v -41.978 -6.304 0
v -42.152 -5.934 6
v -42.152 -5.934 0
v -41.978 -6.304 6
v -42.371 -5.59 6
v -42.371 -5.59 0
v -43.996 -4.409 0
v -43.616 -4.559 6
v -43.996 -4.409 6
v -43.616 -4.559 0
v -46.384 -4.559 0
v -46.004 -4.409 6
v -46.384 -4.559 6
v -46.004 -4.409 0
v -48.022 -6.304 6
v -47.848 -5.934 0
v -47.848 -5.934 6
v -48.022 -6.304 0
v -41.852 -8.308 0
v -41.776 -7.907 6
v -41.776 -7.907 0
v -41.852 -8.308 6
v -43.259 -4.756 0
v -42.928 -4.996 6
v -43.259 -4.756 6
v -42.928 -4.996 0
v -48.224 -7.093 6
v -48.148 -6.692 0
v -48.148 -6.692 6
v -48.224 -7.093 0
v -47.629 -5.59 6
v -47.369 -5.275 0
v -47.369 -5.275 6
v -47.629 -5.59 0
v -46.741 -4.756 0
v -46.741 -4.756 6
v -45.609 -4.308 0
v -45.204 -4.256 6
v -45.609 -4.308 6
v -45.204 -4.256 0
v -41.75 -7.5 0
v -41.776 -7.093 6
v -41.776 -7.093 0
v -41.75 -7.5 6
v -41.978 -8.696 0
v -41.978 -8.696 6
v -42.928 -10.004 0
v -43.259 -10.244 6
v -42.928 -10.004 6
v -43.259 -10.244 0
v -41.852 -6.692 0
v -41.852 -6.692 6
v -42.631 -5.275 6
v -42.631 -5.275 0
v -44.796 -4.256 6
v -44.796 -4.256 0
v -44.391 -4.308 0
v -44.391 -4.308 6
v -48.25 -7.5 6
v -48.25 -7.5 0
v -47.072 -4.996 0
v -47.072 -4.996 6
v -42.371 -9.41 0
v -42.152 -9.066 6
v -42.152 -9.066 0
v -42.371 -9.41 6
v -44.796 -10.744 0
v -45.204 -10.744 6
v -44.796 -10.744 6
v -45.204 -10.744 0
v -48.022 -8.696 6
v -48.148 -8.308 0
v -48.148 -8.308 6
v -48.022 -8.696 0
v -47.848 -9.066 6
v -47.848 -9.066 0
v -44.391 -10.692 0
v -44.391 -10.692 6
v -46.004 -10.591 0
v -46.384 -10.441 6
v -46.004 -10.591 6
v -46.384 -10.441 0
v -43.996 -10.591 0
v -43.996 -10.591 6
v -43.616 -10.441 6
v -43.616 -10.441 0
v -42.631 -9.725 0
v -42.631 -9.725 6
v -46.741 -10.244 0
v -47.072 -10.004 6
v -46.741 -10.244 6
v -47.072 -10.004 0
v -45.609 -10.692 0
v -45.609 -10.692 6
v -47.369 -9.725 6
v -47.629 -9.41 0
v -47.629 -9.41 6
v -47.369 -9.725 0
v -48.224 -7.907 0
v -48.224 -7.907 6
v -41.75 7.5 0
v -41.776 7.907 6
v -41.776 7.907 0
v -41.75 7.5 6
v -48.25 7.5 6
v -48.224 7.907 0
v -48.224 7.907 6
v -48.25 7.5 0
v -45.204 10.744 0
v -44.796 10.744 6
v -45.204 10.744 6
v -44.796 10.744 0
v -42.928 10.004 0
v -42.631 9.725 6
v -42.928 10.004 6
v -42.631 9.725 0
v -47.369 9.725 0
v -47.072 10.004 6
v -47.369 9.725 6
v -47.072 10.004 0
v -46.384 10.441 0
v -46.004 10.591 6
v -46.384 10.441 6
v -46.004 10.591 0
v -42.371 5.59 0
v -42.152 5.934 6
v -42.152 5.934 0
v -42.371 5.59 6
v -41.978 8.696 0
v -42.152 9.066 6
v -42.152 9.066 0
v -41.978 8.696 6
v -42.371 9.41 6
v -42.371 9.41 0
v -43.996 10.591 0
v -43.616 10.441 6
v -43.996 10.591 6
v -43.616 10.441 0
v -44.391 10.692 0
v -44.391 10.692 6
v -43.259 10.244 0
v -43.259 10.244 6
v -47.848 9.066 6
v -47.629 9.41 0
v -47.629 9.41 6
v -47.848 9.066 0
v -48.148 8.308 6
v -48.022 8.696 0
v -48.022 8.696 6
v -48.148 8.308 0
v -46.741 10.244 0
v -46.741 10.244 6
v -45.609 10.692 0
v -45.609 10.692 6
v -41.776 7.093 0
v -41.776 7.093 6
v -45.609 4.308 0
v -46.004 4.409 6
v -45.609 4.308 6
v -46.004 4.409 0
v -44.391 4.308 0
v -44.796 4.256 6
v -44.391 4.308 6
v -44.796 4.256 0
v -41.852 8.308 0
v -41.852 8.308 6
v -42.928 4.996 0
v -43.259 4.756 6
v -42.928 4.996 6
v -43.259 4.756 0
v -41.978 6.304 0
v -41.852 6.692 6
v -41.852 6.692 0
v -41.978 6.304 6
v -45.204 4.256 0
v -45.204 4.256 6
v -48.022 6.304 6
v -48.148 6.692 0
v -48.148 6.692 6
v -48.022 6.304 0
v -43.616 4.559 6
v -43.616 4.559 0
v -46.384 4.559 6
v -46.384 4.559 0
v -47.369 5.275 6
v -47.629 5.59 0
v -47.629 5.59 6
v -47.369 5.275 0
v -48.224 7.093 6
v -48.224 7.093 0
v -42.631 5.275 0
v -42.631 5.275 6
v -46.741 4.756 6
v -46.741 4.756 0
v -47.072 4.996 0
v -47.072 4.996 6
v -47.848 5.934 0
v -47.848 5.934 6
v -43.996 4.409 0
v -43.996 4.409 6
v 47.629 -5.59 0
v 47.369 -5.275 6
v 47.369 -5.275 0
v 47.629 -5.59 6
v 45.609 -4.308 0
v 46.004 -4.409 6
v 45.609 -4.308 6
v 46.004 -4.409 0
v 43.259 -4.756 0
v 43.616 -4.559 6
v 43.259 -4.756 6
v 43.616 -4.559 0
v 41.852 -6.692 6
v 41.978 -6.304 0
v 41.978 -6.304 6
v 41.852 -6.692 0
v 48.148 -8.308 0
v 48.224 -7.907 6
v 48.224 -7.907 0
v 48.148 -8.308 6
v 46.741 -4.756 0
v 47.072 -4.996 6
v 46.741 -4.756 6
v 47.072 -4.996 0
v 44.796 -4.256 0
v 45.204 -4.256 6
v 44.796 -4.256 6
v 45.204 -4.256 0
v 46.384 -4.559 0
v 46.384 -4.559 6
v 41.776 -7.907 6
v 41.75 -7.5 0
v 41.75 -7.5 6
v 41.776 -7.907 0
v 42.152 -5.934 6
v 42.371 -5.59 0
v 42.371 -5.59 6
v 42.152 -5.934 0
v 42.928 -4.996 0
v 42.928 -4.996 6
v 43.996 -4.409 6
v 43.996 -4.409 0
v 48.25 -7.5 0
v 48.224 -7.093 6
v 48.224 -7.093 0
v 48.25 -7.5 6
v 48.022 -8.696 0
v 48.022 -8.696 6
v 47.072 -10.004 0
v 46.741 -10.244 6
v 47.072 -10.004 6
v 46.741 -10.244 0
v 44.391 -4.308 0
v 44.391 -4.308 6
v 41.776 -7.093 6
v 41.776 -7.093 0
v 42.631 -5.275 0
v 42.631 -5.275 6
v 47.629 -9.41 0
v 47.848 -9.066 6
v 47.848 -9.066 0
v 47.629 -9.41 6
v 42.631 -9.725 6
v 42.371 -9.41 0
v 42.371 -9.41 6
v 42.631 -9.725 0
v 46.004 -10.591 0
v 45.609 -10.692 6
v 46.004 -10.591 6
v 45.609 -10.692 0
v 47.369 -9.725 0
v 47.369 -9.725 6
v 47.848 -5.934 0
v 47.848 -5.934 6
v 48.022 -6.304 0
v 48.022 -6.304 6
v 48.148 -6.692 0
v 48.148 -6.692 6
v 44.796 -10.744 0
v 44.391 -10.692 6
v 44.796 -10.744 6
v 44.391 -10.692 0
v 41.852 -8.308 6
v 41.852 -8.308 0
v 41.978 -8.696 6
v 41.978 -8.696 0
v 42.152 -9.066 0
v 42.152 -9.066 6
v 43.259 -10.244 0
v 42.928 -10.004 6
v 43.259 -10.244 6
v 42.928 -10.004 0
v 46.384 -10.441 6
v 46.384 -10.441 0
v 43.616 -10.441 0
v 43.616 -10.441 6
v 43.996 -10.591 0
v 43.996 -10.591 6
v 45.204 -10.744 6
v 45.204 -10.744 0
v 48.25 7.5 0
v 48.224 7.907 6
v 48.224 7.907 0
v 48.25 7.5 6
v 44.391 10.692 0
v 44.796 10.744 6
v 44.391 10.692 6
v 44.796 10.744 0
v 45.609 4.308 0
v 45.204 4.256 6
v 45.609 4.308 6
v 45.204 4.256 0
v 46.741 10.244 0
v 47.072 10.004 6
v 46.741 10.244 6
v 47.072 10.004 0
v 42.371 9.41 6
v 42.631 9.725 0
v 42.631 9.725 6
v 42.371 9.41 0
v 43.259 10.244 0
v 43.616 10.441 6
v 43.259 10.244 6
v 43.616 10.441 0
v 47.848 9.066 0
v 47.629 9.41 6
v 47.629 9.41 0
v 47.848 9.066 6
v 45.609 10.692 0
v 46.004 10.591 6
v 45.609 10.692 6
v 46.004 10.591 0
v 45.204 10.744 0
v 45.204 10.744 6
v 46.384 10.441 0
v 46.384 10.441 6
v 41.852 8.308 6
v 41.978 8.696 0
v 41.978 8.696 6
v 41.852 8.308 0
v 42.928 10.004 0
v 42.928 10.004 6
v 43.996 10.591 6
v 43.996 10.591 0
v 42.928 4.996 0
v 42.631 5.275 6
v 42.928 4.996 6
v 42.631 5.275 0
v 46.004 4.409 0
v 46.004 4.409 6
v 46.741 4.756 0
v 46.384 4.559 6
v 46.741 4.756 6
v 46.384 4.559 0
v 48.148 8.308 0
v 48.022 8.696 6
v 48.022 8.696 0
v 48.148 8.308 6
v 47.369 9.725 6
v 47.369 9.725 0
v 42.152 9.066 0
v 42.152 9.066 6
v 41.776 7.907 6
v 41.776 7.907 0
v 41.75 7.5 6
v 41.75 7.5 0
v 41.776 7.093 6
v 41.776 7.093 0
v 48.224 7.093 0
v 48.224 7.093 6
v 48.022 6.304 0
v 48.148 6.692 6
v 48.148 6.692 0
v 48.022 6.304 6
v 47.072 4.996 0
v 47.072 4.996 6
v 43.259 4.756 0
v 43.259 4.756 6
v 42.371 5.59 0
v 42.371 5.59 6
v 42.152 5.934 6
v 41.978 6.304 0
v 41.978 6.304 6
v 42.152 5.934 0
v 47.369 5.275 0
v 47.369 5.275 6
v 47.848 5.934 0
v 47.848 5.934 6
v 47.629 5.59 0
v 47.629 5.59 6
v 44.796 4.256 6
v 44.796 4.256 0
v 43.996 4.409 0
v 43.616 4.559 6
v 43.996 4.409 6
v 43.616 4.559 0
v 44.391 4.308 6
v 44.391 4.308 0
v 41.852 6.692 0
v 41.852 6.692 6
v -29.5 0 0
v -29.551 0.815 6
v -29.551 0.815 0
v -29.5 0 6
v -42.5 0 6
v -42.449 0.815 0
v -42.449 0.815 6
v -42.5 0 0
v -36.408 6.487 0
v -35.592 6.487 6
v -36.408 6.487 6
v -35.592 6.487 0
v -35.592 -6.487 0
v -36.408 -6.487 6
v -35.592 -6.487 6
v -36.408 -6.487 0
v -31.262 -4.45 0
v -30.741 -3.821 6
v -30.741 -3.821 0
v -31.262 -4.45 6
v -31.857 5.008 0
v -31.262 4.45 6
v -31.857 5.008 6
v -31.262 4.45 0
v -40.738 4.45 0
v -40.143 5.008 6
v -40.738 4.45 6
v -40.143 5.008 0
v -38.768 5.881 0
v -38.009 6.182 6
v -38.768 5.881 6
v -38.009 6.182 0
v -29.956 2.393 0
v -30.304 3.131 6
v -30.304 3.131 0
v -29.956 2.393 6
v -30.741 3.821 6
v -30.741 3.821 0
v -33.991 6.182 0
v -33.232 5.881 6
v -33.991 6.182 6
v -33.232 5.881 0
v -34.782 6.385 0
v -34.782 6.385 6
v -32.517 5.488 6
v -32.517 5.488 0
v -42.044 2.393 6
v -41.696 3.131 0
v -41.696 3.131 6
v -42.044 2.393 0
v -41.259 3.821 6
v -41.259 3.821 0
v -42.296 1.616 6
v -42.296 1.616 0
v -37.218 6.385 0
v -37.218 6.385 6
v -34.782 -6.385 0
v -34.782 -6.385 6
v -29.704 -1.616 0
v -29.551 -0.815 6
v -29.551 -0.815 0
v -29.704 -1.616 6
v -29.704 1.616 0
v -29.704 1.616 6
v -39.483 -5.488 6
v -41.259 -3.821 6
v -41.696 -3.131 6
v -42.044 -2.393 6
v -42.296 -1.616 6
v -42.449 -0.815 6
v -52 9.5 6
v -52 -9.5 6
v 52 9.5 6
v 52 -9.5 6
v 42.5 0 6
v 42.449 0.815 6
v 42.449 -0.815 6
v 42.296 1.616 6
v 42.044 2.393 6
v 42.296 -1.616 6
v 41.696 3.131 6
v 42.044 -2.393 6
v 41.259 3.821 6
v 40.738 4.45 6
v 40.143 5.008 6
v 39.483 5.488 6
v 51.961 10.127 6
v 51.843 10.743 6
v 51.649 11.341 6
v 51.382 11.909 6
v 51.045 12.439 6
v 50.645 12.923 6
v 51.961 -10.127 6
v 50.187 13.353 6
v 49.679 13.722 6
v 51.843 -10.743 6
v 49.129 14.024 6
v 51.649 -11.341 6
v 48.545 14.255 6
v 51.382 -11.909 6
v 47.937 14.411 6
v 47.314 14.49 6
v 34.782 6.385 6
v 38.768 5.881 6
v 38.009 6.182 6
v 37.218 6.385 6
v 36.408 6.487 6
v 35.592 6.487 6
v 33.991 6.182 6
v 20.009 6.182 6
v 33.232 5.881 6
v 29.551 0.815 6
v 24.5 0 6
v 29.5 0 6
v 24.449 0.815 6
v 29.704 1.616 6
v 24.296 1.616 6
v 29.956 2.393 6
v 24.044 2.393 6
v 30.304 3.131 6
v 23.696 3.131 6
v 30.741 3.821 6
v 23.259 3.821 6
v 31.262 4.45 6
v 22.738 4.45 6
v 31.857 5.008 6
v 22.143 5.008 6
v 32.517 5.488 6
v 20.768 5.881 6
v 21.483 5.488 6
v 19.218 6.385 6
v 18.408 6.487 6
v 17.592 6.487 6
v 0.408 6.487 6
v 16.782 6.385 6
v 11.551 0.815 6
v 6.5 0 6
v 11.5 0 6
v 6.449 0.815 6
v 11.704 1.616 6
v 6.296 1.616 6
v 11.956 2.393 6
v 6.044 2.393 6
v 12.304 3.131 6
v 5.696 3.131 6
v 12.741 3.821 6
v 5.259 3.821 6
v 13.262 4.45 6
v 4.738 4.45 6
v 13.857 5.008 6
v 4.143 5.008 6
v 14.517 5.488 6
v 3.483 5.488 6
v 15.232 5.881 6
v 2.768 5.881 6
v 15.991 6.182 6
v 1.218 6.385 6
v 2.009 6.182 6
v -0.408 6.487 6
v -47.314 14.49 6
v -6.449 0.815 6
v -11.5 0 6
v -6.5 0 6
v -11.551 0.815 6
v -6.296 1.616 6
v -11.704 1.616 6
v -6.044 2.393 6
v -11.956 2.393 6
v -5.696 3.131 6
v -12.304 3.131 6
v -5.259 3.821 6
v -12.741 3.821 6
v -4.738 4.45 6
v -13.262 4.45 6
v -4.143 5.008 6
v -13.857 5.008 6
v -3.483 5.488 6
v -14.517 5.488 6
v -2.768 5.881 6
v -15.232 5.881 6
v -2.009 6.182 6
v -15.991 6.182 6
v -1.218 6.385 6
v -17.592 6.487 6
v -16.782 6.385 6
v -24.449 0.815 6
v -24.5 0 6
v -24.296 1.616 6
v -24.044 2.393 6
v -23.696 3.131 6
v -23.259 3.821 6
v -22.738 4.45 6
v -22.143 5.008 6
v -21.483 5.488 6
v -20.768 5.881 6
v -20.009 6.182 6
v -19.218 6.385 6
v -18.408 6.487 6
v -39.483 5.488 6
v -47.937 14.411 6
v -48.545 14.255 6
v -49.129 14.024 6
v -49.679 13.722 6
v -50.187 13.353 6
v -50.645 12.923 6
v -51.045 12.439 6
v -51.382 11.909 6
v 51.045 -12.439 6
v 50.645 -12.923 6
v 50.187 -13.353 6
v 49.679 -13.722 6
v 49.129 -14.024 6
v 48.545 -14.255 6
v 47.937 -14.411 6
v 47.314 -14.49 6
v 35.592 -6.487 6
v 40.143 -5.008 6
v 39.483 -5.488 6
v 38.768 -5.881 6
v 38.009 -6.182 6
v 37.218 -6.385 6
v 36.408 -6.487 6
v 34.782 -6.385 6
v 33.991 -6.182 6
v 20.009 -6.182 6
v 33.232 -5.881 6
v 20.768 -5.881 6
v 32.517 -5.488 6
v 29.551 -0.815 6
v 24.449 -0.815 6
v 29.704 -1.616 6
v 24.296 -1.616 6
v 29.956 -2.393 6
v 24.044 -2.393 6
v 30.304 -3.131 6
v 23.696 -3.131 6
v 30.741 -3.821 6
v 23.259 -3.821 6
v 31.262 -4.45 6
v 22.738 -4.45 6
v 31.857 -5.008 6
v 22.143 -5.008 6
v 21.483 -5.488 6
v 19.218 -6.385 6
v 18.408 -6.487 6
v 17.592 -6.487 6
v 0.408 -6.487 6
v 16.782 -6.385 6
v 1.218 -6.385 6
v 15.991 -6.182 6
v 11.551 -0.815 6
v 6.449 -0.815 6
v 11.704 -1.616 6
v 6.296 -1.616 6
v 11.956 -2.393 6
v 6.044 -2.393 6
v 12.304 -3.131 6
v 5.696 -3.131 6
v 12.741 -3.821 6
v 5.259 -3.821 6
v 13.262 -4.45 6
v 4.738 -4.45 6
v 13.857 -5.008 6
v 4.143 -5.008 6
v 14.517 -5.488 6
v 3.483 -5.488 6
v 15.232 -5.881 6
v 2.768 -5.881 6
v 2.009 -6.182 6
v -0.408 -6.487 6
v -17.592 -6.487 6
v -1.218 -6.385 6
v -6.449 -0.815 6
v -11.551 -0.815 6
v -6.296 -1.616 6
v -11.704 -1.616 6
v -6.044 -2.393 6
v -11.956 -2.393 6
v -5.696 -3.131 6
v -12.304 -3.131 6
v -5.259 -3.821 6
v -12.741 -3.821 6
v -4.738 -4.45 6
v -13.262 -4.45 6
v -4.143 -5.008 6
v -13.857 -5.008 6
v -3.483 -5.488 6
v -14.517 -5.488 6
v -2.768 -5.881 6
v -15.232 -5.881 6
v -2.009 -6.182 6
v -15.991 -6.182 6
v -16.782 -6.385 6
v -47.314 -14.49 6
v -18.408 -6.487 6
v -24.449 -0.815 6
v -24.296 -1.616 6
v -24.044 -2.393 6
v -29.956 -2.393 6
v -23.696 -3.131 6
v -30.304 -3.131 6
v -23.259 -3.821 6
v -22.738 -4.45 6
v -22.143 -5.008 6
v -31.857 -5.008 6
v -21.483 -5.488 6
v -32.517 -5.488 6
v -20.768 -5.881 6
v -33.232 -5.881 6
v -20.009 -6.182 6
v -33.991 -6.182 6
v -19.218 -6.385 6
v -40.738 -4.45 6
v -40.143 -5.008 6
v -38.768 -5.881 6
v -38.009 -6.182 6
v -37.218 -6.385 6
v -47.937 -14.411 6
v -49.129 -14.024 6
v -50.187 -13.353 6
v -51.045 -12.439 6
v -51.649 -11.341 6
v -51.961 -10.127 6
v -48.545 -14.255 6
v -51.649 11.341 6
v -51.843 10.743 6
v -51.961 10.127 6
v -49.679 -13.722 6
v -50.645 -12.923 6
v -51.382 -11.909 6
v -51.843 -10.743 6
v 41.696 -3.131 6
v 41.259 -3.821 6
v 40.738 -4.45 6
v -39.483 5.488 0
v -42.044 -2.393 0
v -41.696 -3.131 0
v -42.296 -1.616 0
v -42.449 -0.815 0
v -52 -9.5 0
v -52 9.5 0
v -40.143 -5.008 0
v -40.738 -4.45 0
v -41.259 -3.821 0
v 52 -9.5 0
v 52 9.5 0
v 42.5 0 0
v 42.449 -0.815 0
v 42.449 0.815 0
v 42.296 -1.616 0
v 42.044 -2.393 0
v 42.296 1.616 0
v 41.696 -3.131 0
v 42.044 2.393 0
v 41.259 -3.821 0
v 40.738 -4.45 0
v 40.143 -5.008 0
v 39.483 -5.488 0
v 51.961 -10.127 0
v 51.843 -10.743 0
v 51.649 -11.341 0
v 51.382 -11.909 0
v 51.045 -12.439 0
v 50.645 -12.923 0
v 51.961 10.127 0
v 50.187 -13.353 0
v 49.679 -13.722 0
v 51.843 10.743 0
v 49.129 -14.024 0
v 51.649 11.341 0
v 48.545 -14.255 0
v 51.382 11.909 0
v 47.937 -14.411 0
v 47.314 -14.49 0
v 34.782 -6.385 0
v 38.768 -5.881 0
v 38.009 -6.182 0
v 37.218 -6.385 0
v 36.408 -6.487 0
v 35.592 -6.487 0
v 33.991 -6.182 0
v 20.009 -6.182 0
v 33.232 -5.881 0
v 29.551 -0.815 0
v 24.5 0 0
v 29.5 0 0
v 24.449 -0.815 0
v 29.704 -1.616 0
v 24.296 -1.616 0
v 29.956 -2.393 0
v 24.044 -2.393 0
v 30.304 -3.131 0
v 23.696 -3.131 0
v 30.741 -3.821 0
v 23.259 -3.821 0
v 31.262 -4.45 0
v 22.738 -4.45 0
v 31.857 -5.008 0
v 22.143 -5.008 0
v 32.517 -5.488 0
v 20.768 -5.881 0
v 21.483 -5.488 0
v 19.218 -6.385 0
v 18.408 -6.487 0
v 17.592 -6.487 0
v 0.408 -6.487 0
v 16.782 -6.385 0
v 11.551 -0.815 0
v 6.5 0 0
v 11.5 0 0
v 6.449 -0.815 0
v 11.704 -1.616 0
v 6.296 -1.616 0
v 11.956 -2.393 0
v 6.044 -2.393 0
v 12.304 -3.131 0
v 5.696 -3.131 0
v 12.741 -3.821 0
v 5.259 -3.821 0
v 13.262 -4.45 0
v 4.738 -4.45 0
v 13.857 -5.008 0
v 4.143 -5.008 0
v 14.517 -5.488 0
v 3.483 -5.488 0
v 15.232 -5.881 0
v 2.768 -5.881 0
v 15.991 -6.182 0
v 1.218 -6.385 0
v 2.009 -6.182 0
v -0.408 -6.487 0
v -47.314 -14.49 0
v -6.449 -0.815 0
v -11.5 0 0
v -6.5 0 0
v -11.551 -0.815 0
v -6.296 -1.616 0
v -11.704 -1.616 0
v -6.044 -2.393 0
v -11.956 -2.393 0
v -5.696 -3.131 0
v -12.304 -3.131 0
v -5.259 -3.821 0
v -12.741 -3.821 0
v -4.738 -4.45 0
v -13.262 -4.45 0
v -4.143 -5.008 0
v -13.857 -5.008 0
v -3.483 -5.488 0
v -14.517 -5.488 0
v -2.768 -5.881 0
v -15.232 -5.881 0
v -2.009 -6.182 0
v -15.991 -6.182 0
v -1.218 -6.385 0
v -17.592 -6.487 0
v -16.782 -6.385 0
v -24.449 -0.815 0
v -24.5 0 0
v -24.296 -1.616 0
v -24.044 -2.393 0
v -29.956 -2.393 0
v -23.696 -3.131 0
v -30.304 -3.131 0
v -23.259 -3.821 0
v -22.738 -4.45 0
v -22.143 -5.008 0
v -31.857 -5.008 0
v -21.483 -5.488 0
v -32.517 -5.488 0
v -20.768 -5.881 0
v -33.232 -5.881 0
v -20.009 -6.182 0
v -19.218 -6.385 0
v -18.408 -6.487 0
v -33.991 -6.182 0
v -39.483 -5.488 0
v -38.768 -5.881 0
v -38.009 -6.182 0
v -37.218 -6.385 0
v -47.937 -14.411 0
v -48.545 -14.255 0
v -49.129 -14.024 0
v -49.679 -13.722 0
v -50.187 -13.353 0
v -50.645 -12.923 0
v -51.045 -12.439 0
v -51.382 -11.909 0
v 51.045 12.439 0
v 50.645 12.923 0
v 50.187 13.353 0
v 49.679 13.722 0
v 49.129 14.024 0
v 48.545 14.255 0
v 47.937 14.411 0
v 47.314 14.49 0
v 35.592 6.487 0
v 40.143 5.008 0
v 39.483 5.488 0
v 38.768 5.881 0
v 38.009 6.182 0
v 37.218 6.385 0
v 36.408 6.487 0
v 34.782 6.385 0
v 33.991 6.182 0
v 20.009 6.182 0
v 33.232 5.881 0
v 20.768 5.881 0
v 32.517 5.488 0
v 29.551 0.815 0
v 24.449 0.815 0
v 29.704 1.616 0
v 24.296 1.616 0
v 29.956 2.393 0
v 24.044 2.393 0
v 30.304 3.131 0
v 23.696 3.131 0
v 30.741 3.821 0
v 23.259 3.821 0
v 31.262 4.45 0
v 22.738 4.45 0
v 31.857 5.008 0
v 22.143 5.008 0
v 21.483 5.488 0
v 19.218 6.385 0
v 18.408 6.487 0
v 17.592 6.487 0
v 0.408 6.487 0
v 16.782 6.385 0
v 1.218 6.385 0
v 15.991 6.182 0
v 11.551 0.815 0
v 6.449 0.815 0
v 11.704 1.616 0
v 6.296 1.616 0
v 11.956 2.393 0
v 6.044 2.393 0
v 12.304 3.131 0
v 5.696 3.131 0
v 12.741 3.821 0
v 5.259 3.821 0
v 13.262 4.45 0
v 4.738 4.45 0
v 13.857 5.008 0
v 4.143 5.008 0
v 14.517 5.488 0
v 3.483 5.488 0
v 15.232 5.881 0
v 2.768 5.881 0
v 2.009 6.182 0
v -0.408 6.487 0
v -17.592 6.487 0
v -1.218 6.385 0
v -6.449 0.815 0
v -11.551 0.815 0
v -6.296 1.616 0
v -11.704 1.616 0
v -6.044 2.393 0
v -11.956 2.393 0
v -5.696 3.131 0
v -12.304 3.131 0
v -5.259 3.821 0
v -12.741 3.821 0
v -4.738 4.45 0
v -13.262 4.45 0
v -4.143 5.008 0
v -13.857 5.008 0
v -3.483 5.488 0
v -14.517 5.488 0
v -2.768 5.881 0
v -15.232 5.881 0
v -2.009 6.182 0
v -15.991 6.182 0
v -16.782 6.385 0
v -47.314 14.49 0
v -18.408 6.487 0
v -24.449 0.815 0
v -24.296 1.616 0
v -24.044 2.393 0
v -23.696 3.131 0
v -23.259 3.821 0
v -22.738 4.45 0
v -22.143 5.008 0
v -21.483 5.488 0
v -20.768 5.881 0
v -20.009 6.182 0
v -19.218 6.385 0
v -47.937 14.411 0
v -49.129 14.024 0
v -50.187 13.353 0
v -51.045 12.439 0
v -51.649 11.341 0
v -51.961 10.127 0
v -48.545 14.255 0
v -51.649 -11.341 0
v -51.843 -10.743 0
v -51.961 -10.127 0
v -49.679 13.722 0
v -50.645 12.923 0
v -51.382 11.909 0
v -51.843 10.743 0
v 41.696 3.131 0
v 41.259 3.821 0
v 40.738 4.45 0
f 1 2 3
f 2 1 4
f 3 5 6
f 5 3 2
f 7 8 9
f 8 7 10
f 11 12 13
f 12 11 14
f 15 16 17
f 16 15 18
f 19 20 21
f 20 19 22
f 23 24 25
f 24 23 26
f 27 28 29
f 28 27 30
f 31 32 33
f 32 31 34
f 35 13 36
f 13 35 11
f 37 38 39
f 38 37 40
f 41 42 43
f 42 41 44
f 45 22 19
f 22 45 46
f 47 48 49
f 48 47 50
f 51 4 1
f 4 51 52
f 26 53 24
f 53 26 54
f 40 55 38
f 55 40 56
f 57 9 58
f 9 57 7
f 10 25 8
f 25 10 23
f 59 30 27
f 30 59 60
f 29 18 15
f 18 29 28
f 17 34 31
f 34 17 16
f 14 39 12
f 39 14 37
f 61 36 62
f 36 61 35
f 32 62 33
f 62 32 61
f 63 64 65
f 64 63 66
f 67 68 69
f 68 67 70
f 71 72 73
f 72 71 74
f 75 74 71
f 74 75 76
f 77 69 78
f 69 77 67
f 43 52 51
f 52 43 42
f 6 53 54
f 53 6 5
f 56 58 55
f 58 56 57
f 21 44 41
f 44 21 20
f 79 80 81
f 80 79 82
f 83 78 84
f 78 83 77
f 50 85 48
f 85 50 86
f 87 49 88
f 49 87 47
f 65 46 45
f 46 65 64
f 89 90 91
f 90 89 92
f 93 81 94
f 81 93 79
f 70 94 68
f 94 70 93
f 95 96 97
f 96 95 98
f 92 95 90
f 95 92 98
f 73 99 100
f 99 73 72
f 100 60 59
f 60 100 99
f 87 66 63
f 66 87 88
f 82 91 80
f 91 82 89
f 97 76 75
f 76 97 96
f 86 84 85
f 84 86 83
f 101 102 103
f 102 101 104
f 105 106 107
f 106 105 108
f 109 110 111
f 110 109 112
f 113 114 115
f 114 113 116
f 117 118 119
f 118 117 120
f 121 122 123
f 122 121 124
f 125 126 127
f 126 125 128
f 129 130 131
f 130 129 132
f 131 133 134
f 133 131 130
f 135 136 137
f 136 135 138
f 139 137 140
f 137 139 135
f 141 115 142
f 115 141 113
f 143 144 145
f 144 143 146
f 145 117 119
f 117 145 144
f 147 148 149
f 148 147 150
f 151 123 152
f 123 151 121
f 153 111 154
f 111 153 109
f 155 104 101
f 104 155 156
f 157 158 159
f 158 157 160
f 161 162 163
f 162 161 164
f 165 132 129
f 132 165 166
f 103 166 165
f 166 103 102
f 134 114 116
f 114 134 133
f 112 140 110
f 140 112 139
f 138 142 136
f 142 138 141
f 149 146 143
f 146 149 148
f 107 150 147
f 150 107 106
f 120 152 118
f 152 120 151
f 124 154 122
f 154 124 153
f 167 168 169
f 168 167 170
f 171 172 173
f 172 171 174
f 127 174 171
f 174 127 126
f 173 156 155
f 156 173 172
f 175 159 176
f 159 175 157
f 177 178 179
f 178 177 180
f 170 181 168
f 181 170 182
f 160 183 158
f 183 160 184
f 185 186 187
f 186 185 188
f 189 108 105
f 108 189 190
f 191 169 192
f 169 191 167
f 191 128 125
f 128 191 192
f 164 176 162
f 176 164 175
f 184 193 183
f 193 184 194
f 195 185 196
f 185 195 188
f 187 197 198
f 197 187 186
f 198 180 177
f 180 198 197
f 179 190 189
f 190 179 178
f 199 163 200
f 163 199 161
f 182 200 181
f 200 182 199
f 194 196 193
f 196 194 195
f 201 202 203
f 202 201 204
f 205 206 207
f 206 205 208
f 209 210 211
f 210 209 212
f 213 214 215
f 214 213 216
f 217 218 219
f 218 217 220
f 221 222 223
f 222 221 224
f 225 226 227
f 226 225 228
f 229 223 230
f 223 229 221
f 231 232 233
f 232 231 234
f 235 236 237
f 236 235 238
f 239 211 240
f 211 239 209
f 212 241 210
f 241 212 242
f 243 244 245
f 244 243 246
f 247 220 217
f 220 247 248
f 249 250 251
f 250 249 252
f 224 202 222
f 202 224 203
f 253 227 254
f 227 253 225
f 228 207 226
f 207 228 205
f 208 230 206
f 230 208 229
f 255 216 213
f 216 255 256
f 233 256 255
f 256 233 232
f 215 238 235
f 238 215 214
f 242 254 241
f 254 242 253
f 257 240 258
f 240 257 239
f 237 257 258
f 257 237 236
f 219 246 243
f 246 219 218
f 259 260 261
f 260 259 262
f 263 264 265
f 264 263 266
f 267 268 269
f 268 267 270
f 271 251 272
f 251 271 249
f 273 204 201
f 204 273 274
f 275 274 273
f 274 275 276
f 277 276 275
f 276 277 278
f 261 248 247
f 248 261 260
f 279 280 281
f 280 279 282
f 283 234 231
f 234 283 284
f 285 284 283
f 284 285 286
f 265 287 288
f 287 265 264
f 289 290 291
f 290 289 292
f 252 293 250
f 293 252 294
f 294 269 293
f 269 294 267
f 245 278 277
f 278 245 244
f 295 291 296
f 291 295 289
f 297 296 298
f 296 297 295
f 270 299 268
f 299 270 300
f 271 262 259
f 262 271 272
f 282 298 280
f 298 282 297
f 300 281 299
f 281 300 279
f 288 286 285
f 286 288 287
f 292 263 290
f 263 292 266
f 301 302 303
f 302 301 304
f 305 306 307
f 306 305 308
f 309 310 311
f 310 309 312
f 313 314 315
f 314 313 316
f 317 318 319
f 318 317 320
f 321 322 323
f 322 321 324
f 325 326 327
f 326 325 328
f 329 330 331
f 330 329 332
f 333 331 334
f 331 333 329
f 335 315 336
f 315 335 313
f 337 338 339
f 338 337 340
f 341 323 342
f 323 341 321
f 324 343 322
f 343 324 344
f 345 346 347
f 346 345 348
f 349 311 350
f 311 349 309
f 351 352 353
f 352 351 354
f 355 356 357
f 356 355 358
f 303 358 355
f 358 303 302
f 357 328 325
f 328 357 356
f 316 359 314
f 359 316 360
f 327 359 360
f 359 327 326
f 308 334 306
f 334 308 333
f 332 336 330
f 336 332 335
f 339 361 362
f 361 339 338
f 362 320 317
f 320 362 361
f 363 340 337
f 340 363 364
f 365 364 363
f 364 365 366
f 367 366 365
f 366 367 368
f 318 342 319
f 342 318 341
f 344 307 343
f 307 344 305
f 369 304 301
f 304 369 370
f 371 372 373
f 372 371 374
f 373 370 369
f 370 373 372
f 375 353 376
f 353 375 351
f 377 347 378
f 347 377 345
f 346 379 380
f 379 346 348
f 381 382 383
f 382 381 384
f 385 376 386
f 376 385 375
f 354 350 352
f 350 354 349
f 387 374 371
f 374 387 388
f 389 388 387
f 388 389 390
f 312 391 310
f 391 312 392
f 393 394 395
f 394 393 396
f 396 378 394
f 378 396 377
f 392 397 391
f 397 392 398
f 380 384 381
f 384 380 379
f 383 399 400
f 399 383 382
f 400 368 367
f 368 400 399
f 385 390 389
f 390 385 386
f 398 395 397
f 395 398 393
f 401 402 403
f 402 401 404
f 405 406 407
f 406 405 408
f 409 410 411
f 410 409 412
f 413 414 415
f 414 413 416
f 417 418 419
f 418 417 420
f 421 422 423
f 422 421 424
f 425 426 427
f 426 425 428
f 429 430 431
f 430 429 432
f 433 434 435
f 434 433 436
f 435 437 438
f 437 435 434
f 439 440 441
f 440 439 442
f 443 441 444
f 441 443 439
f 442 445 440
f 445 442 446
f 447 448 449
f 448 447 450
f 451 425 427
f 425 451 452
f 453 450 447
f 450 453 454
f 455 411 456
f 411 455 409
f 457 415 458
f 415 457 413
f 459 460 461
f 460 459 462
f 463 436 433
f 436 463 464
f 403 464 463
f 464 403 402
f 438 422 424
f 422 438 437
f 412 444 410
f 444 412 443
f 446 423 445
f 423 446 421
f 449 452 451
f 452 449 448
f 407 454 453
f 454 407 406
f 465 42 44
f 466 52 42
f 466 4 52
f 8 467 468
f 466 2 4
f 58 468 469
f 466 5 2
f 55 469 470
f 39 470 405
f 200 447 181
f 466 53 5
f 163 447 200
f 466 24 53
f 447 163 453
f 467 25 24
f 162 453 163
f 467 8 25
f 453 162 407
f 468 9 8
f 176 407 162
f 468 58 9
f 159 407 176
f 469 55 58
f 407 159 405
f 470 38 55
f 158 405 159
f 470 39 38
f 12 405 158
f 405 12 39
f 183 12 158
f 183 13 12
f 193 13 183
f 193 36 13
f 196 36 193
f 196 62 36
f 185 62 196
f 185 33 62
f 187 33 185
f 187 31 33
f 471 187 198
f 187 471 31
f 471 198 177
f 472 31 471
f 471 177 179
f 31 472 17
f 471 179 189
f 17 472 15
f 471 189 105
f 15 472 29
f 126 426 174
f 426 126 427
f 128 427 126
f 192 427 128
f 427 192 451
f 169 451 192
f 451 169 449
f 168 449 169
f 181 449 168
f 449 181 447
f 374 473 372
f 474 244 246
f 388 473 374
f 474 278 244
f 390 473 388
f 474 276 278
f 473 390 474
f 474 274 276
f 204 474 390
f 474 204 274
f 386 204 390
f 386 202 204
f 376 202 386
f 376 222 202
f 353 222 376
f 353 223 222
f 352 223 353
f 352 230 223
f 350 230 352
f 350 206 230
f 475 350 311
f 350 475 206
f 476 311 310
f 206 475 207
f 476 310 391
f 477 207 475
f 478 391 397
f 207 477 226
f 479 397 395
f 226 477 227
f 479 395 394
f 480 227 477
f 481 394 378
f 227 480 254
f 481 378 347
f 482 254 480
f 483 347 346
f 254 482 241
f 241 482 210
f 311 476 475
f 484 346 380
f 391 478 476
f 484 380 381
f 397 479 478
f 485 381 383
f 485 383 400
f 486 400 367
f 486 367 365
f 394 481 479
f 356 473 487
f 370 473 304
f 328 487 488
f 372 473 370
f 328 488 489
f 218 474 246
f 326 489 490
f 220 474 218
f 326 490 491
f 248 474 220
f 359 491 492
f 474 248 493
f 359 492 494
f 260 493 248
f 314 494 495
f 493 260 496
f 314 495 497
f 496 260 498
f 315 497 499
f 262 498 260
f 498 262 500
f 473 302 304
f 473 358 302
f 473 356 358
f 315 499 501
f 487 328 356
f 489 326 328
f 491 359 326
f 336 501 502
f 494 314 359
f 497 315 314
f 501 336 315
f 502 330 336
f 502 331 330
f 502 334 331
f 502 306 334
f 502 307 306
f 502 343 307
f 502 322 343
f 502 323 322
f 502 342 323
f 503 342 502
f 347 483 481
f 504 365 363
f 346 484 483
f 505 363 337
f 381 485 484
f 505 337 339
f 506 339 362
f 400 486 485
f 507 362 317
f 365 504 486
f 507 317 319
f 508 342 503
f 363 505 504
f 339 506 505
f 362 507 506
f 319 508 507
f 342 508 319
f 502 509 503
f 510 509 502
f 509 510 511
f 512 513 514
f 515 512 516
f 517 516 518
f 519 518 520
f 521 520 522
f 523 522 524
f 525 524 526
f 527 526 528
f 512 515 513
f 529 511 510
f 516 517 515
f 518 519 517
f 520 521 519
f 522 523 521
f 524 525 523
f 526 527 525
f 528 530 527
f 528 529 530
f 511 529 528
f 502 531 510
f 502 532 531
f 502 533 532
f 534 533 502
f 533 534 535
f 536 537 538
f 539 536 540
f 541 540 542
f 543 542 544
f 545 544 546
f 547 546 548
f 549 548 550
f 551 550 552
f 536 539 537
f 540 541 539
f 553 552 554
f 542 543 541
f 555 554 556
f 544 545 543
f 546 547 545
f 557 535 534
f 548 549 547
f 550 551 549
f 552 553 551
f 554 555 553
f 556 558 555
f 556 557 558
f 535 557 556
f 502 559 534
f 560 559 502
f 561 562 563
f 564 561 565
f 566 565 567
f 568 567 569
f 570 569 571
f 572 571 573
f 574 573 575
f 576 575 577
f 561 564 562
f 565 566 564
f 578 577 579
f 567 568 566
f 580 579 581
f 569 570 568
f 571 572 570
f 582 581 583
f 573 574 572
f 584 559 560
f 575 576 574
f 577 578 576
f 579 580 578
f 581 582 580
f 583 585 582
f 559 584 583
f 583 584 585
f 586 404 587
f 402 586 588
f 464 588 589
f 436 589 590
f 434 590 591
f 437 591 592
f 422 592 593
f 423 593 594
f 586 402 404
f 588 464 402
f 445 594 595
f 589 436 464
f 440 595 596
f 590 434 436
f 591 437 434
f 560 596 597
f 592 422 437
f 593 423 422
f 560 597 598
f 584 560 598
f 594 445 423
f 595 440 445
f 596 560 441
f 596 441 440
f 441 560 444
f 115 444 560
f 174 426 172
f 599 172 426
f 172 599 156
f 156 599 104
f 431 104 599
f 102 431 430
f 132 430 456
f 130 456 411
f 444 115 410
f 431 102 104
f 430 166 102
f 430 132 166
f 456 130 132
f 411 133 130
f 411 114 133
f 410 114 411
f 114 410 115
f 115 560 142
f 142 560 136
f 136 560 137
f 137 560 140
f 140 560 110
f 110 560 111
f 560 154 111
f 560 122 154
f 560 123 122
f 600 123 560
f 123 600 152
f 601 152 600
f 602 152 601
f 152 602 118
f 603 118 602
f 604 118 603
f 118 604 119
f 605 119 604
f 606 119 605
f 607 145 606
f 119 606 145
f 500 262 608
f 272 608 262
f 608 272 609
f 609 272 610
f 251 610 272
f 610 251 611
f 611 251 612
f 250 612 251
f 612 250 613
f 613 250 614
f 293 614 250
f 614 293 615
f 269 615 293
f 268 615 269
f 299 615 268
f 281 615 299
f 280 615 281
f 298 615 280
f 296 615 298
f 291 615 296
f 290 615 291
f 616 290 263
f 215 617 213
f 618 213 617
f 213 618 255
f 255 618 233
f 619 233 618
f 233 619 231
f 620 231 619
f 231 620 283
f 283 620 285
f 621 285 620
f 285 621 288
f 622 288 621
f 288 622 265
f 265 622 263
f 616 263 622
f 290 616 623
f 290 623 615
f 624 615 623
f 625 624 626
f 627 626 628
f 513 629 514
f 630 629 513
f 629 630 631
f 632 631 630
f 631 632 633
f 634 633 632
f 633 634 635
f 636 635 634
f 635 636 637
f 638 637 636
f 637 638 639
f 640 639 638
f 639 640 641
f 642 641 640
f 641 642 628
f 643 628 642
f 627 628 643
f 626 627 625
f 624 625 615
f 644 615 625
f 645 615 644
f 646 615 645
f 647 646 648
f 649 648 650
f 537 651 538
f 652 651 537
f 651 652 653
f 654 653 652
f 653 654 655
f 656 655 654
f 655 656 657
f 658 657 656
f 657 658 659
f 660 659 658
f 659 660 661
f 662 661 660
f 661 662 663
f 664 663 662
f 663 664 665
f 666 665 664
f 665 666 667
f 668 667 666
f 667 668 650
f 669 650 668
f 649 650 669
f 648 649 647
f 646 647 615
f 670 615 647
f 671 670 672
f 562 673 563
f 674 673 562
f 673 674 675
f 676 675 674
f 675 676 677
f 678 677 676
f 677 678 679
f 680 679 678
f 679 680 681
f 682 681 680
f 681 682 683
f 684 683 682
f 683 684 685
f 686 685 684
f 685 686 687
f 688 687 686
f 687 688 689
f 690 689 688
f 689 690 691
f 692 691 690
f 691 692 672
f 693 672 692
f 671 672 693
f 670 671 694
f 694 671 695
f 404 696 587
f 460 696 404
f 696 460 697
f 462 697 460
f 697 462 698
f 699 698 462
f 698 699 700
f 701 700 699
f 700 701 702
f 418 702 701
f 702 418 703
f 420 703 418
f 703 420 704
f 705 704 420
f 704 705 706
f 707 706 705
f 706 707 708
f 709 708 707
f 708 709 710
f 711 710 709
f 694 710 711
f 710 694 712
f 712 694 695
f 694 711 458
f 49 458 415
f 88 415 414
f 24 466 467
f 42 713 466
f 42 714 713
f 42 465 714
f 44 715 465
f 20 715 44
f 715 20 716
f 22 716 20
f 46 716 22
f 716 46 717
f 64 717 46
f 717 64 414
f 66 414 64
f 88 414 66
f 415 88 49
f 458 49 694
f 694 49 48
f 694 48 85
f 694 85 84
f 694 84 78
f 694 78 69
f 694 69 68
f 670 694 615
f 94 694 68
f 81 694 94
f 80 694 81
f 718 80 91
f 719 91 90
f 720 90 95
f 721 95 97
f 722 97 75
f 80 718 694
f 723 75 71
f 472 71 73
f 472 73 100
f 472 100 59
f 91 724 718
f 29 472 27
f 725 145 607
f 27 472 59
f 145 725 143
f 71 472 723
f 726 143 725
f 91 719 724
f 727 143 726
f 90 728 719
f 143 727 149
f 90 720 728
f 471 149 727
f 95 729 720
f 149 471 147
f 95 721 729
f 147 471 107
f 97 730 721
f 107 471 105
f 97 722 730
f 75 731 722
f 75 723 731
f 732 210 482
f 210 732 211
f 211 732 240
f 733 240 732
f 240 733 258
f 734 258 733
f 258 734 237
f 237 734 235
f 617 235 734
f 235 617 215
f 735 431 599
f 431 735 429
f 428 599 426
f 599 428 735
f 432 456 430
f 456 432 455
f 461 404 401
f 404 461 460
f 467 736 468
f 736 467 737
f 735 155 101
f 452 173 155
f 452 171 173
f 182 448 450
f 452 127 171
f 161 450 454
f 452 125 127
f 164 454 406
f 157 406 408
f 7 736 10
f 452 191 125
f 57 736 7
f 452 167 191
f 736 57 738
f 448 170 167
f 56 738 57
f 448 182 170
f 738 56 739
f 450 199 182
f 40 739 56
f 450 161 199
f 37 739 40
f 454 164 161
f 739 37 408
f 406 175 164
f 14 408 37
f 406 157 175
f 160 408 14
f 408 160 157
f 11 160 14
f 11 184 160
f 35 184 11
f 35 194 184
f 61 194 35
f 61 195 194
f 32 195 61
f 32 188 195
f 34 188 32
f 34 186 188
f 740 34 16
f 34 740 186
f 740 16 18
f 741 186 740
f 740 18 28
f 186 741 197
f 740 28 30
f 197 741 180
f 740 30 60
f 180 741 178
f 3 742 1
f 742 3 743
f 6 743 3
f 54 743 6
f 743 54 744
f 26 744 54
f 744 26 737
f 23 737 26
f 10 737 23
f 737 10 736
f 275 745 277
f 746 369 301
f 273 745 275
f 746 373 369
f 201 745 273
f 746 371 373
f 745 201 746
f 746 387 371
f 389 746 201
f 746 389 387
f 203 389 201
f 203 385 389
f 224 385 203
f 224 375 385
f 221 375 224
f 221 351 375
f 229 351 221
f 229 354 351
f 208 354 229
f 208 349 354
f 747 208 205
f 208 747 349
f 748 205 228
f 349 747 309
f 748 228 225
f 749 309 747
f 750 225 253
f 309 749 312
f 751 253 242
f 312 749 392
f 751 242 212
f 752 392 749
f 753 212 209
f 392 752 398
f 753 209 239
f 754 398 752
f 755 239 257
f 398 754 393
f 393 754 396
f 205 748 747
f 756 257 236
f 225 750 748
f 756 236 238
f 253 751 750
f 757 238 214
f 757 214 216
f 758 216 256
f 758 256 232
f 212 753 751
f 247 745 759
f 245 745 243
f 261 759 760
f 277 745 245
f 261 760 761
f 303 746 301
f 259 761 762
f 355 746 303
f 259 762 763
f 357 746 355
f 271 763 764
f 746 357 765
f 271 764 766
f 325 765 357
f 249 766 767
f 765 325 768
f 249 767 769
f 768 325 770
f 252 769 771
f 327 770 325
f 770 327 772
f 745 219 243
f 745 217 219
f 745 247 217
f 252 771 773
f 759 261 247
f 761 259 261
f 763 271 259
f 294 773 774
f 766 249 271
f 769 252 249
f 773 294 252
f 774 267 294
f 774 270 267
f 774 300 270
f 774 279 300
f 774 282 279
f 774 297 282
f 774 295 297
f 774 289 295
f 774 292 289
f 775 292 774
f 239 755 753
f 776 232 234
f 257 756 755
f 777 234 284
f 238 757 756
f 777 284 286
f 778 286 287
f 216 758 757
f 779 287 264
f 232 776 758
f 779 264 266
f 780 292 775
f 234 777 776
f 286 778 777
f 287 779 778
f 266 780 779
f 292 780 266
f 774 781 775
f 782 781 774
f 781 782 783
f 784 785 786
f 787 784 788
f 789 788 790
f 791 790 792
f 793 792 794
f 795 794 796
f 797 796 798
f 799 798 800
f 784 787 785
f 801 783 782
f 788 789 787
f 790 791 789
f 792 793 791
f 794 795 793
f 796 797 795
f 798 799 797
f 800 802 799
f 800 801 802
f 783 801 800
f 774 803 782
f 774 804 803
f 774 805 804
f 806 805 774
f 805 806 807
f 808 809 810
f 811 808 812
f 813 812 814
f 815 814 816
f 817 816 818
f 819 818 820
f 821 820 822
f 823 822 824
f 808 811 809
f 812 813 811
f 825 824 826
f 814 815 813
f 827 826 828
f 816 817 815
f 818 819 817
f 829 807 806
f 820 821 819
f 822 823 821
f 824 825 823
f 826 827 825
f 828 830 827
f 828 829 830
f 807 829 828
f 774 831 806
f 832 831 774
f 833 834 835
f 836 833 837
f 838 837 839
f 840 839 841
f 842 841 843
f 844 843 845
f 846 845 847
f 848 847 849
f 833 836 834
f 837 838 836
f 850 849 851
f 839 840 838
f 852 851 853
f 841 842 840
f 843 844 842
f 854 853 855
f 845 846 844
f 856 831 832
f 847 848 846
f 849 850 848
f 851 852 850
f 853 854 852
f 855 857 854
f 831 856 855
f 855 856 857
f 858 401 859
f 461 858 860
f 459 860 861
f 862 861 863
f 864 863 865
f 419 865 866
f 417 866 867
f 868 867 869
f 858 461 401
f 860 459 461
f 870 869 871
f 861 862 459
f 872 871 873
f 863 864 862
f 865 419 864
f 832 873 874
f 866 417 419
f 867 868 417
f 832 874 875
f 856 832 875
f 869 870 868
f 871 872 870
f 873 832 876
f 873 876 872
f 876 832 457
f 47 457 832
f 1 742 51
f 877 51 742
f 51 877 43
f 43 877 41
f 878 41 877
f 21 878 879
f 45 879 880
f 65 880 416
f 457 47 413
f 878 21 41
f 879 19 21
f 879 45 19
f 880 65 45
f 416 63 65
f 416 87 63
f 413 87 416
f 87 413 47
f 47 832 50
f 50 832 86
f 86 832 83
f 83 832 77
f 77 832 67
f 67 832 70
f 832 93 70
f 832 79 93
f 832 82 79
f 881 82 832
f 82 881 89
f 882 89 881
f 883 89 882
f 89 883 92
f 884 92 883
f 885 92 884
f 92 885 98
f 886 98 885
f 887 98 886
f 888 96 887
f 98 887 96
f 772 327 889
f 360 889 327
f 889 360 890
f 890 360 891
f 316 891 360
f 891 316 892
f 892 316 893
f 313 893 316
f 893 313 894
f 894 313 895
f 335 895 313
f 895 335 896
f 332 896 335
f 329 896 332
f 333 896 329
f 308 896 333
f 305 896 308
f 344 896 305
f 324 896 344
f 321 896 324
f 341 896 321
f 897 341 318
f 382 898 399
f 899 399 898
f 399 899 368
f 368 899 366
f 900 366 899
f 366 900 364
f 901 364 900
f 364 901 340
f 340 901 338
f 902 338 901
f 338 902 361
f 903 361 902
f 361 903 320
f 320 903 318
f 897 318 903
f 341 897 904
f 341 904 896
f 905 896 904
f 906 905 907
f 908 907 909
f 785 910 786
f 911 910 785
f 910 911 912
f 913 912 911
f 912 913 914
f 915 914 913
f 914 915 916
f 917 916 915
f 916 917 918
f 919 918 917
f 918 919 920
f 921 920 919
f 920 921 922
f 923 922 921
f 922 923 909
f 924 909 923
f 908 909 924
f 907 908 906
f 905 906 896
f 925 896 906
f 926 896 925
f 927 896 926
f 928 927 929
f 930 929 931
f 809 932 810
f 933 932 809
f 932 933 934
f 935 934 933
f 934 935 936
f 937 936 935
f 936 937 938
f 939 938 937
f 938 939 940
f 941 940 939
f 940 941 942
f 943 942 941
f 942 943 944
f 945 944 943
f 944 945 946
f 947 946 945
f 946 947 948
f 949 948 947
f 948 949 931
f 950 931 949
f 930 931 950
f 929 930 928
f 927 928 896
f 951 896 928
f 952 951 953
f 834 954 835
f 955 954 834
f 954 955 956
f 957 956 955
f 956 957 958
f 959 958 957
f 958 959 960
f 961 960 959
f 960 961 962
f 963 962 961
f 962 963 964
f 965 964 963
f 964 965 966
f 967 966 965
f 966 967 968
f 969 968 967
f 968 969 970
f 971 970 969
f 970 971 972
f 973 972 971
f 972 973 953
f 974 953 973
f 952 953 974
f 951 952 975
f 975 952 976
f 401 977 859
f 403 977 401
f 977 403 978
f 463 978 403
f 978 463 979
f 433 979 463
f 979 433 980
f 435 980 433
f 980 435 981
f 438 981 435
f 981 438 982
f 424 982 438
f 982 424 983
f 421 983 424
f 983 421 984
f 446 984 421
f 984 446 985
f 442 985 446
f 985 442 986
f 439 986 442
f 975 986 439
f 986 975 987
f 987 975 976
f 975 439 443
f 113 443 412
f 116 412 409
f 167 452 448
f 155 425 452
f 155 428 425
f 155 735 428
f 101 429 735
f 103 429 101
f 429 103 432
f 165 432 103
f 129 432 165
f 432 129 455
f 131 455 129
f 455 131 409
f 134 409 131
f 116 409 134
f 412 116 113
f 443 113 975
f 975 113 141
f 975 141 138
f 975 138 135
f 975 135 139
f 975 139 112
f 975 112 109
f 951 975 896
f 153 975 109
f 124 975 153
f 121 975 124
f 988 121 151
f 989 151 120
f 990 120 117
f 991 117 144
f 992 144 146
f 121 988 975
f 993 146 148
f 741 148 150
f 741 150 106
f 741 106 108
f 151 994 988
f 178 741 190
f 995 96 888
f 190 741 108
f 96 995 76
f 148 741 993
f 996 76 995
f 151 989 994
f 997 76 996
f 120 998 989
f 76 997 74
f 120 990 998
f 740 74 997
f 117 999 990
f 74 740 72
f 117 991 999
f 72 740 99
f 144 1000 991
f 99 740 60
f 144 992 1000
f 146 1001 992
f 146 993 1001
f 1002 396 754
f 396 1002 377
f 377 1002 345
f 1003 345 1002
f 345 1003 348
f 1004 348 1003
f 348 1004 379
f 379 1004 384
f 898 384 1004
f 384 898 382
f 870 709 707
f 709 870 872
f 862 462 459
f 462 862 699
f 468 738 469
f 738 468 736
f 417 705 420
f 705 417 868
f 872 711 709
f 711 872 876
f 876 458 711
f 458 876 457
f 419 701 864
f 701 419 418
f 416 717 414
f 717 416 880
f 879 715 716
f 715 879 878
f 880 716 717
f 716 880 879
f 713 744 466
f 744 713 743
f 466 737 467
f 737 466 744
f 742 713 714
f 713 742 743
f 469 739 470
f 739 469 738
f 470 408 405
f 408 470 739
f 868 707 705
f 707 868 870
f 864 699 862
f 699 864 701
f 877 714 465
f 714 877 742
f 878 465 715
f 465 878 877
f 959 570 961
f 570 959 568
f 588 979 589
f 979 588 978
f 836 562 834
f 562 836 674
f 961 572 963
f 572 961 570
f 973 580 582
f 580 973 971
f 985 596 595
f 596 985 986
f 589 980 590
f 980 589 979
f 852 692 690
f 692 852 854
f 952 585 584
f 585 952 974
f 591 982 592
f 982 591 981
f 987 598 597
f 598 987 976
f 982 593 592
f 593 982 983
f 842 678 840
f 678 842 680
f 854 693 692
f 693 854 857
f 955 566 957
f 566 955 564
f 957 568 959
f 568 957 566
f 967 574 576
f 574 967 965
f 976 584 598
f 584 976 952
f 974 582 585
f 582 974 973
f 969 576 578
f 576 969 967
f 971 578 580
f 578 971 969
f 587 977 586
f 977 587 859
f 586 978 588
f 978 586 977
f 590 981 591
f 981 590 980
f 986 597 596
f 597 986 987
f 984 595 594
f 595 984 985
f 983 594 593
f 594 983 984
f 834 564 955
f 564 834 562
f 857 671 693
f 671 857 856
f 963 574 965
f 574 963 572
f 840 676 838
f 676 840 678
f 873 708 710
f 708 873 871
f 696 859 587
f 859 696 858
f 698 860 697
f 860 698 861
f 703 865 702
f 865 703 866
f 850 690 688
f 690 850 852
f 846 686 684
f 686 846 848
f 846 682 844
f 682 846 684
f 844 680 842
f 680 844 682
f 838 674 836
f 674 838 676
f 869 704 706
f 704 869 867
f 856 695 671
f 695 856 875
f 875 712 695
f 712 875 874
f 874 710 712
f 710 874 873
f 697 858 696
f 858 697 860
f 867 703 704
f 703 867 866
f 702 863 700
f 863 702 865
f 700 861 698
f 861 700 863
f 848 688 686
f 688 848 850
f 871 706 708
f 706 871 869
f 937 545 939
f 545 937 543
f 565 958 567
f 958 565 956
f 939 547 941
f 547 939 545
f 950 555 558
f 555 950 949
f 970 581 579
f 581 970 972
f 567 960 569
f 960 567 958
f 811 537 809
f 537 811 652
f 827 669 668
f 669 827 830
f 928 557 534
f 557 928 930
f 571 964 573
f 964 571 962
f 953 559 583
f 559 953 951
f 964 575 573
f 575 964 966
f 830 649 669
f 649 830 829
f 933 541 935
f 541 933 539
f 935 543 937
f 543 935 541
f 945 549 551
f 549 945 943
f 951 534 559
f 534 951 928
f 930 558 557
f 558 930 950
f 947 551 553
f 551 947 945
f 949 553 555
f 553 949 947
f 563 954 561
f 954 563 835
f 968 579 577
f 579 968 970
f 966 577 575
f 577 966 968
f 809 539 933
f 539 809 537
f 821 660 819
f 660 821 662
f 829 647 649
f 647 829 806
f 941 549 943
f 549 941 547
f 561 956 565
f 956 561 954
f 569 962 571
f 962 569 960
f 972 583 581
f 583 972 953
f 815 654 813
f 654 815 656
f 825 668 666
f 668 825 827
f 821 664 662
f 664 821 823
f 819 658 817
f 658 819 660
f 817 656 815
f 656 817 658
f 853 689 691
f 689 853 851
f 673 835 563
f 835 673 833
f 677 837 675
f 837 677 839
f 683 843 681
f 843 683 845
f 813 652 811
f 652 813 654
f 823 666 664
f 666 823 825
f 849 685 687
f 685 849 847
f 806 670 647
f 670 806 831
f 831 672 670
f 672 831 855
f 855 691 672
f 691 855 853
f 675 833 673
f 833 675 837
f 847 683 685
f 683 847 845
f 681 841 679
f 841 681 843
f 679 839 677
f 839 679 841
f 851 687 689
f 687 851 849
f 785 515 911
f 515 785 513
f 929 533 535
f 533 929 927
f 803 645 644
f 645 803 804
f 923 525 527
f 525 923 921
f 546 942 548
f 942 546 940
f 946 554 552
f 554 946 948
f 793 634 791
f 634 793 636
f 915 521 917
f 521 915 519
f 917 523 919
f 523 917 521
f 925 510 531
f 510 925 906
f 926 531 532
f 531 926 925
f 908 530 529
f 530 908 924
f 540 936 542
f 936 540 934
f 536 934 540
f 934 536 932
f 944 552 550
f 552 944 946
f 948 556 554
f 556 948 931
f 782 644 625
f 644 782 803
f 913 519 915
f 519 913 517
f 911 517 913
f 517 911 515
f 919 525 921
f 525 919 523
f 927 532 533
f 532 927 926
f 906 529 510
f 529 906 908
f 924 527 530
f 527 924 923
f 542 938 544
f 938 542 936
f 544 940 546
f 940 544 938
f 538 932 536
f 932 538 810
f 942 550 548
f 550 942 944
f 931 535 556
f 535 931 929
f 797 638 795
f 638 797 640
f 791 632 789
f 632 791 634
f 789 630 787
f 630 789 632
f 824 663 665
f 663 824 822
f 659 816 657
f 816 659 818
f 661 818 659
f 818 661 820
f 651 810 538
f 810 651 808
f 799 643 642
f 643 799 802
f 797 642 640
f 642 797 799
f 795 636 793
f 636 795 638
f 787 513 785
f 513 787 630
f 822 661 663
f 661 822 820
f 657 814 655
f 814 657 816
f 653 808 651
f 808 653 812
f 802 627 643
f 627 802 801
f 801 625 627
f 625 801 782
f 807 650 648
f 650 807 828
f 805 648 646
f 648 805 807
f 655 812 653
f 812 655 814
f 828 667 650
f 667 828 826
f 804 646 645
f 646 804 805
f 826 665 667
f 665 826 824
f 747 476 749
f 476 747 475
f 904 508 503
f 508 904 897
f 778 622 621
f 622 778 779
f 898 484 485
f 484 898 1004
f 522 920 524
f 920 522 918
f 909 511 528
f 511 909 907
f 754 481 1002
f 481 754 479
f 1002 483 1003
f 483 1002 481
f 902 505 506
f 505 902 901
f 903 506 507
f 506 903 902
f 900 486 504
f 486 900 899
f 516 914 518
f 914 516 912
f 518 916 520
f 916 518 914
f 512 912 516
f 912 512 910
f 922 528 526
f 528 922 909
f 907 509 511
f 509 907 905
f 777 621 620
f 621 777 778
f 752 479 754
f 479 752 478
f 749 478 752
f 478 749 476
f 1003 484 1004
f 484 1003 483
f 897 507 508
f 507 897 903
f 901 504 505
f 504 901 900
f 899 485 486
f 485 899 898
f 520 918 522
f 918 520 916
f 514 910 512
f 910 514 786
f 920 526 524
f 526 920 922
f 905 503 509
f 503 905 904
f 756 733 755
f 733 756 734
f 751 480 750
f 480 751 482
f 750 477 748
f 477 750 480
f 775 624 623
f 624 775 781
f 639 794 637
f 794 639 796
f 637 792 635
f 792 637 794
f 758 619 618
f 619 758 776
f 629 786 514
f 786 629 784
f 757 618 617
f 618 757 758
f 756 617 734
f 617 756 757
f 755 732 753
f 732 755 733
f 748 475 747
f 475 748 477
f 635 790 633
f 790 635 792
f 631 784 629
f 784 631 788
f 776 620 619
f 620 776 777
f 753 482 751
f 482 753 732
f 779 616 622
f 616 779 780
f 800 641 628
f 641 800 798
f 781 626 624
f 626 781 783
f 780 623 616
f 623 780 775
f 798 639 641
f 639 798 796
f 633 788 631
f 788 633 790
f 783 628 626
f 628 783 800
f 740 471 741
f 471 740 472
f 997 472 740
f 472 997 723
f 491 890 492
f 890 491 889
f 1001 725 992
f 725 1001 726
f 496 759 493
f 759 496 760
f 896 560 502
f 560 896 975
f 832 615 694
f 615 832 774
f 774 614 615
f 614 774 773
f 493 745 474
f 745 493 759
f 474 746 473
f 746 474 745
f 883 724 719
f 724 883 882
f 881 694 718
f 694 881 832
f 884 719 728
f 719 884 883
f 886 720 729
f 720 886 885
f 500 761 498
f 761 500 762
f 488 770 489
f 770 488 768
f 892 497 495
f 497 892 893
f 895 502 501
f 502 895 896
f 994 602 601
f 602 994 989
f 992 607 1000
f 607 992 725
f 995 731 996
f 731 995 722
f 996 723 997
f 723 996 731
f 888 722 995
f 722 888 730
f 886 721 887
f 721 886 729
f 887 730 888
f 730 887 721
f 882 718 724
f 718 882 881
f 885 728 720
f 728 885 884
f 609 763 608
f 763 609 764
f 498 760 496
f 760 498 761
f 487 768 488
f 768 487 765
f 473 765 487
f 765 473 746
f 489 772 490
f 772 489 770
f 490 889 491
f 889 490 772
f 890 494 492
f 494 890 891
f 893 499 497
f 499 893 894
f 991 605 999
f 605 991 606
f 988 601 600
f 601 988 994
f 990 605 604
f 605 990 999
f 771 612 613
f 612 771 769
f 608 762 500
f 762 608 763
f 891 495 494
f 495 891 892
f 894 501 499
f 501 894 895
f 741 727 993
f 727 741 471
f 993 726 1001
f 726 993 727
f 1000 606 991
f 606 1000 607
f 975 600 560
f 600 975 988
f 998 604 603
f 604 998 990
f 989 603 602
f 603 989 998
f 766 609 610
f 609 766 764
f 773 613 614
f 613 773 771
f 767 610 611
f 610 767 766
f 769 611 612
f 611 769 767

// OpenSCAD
$fn = 50;


difference() {
	union() {
		hull() {
			translate(v = [-47.0000000000, 9.5000000000, 0]) {
				cylinder(h = 6, r = 5);
			}
			translate(v = [47.0000000000, 9.5000000000, 0]) {
				cylinder(h = 6, r = 5);
			}
			translate(v = [-47.0000000000, -9.5000000000, 0]) {
				cylinder(h = 6, r = 5);
			}
			translate(v = [47.0000000000, -9.5000000000, 0]) {
				cylinder(h = 6, r = 5);
			}
		}
	}
	union() {
		#translate(v = [-45.0000000000, -7.5000000000, -100.0000000000]) {
			cylinder(h = 200, r = 3.2500000000);
		}
		#translate(v = [-45.0000000000, 7.5000000000, -100.0000000000]) {
			cylinder(h = 200, r = 3.2500000000);
		}
		#translate(v = [45.0000000000, -7.5000000000, -100.0000000000]) {
			cylinder(h = 200, r = 3.2500000000);
		}
		#translate(v = [45.0000000000, 7.5000000000, -100.0000000000]) {
			cylinder(h = 200, r = 3.2500000000);
		}
		#translate(v = [-36.0000000000, 0, 0]) {
			cylinder(h = 6, r = 6.5000000000);
		}
		#translate(v = [-18.0000000000, 0, 0]) {
			cylinder(h = 6, r = 6.5000000000);
		}
		#cylinder(h = 6, r = 6.5000000000);
		#translate(v = [18.0000000000, 0, 0]) {
			cylinder(h = 6, r = 6.5000000000);
		}
		#translate(v = [36.0000000000, 0, 0]) {
			cylinder(h = 6, r = 6.5000000000);
		}
	}
}
